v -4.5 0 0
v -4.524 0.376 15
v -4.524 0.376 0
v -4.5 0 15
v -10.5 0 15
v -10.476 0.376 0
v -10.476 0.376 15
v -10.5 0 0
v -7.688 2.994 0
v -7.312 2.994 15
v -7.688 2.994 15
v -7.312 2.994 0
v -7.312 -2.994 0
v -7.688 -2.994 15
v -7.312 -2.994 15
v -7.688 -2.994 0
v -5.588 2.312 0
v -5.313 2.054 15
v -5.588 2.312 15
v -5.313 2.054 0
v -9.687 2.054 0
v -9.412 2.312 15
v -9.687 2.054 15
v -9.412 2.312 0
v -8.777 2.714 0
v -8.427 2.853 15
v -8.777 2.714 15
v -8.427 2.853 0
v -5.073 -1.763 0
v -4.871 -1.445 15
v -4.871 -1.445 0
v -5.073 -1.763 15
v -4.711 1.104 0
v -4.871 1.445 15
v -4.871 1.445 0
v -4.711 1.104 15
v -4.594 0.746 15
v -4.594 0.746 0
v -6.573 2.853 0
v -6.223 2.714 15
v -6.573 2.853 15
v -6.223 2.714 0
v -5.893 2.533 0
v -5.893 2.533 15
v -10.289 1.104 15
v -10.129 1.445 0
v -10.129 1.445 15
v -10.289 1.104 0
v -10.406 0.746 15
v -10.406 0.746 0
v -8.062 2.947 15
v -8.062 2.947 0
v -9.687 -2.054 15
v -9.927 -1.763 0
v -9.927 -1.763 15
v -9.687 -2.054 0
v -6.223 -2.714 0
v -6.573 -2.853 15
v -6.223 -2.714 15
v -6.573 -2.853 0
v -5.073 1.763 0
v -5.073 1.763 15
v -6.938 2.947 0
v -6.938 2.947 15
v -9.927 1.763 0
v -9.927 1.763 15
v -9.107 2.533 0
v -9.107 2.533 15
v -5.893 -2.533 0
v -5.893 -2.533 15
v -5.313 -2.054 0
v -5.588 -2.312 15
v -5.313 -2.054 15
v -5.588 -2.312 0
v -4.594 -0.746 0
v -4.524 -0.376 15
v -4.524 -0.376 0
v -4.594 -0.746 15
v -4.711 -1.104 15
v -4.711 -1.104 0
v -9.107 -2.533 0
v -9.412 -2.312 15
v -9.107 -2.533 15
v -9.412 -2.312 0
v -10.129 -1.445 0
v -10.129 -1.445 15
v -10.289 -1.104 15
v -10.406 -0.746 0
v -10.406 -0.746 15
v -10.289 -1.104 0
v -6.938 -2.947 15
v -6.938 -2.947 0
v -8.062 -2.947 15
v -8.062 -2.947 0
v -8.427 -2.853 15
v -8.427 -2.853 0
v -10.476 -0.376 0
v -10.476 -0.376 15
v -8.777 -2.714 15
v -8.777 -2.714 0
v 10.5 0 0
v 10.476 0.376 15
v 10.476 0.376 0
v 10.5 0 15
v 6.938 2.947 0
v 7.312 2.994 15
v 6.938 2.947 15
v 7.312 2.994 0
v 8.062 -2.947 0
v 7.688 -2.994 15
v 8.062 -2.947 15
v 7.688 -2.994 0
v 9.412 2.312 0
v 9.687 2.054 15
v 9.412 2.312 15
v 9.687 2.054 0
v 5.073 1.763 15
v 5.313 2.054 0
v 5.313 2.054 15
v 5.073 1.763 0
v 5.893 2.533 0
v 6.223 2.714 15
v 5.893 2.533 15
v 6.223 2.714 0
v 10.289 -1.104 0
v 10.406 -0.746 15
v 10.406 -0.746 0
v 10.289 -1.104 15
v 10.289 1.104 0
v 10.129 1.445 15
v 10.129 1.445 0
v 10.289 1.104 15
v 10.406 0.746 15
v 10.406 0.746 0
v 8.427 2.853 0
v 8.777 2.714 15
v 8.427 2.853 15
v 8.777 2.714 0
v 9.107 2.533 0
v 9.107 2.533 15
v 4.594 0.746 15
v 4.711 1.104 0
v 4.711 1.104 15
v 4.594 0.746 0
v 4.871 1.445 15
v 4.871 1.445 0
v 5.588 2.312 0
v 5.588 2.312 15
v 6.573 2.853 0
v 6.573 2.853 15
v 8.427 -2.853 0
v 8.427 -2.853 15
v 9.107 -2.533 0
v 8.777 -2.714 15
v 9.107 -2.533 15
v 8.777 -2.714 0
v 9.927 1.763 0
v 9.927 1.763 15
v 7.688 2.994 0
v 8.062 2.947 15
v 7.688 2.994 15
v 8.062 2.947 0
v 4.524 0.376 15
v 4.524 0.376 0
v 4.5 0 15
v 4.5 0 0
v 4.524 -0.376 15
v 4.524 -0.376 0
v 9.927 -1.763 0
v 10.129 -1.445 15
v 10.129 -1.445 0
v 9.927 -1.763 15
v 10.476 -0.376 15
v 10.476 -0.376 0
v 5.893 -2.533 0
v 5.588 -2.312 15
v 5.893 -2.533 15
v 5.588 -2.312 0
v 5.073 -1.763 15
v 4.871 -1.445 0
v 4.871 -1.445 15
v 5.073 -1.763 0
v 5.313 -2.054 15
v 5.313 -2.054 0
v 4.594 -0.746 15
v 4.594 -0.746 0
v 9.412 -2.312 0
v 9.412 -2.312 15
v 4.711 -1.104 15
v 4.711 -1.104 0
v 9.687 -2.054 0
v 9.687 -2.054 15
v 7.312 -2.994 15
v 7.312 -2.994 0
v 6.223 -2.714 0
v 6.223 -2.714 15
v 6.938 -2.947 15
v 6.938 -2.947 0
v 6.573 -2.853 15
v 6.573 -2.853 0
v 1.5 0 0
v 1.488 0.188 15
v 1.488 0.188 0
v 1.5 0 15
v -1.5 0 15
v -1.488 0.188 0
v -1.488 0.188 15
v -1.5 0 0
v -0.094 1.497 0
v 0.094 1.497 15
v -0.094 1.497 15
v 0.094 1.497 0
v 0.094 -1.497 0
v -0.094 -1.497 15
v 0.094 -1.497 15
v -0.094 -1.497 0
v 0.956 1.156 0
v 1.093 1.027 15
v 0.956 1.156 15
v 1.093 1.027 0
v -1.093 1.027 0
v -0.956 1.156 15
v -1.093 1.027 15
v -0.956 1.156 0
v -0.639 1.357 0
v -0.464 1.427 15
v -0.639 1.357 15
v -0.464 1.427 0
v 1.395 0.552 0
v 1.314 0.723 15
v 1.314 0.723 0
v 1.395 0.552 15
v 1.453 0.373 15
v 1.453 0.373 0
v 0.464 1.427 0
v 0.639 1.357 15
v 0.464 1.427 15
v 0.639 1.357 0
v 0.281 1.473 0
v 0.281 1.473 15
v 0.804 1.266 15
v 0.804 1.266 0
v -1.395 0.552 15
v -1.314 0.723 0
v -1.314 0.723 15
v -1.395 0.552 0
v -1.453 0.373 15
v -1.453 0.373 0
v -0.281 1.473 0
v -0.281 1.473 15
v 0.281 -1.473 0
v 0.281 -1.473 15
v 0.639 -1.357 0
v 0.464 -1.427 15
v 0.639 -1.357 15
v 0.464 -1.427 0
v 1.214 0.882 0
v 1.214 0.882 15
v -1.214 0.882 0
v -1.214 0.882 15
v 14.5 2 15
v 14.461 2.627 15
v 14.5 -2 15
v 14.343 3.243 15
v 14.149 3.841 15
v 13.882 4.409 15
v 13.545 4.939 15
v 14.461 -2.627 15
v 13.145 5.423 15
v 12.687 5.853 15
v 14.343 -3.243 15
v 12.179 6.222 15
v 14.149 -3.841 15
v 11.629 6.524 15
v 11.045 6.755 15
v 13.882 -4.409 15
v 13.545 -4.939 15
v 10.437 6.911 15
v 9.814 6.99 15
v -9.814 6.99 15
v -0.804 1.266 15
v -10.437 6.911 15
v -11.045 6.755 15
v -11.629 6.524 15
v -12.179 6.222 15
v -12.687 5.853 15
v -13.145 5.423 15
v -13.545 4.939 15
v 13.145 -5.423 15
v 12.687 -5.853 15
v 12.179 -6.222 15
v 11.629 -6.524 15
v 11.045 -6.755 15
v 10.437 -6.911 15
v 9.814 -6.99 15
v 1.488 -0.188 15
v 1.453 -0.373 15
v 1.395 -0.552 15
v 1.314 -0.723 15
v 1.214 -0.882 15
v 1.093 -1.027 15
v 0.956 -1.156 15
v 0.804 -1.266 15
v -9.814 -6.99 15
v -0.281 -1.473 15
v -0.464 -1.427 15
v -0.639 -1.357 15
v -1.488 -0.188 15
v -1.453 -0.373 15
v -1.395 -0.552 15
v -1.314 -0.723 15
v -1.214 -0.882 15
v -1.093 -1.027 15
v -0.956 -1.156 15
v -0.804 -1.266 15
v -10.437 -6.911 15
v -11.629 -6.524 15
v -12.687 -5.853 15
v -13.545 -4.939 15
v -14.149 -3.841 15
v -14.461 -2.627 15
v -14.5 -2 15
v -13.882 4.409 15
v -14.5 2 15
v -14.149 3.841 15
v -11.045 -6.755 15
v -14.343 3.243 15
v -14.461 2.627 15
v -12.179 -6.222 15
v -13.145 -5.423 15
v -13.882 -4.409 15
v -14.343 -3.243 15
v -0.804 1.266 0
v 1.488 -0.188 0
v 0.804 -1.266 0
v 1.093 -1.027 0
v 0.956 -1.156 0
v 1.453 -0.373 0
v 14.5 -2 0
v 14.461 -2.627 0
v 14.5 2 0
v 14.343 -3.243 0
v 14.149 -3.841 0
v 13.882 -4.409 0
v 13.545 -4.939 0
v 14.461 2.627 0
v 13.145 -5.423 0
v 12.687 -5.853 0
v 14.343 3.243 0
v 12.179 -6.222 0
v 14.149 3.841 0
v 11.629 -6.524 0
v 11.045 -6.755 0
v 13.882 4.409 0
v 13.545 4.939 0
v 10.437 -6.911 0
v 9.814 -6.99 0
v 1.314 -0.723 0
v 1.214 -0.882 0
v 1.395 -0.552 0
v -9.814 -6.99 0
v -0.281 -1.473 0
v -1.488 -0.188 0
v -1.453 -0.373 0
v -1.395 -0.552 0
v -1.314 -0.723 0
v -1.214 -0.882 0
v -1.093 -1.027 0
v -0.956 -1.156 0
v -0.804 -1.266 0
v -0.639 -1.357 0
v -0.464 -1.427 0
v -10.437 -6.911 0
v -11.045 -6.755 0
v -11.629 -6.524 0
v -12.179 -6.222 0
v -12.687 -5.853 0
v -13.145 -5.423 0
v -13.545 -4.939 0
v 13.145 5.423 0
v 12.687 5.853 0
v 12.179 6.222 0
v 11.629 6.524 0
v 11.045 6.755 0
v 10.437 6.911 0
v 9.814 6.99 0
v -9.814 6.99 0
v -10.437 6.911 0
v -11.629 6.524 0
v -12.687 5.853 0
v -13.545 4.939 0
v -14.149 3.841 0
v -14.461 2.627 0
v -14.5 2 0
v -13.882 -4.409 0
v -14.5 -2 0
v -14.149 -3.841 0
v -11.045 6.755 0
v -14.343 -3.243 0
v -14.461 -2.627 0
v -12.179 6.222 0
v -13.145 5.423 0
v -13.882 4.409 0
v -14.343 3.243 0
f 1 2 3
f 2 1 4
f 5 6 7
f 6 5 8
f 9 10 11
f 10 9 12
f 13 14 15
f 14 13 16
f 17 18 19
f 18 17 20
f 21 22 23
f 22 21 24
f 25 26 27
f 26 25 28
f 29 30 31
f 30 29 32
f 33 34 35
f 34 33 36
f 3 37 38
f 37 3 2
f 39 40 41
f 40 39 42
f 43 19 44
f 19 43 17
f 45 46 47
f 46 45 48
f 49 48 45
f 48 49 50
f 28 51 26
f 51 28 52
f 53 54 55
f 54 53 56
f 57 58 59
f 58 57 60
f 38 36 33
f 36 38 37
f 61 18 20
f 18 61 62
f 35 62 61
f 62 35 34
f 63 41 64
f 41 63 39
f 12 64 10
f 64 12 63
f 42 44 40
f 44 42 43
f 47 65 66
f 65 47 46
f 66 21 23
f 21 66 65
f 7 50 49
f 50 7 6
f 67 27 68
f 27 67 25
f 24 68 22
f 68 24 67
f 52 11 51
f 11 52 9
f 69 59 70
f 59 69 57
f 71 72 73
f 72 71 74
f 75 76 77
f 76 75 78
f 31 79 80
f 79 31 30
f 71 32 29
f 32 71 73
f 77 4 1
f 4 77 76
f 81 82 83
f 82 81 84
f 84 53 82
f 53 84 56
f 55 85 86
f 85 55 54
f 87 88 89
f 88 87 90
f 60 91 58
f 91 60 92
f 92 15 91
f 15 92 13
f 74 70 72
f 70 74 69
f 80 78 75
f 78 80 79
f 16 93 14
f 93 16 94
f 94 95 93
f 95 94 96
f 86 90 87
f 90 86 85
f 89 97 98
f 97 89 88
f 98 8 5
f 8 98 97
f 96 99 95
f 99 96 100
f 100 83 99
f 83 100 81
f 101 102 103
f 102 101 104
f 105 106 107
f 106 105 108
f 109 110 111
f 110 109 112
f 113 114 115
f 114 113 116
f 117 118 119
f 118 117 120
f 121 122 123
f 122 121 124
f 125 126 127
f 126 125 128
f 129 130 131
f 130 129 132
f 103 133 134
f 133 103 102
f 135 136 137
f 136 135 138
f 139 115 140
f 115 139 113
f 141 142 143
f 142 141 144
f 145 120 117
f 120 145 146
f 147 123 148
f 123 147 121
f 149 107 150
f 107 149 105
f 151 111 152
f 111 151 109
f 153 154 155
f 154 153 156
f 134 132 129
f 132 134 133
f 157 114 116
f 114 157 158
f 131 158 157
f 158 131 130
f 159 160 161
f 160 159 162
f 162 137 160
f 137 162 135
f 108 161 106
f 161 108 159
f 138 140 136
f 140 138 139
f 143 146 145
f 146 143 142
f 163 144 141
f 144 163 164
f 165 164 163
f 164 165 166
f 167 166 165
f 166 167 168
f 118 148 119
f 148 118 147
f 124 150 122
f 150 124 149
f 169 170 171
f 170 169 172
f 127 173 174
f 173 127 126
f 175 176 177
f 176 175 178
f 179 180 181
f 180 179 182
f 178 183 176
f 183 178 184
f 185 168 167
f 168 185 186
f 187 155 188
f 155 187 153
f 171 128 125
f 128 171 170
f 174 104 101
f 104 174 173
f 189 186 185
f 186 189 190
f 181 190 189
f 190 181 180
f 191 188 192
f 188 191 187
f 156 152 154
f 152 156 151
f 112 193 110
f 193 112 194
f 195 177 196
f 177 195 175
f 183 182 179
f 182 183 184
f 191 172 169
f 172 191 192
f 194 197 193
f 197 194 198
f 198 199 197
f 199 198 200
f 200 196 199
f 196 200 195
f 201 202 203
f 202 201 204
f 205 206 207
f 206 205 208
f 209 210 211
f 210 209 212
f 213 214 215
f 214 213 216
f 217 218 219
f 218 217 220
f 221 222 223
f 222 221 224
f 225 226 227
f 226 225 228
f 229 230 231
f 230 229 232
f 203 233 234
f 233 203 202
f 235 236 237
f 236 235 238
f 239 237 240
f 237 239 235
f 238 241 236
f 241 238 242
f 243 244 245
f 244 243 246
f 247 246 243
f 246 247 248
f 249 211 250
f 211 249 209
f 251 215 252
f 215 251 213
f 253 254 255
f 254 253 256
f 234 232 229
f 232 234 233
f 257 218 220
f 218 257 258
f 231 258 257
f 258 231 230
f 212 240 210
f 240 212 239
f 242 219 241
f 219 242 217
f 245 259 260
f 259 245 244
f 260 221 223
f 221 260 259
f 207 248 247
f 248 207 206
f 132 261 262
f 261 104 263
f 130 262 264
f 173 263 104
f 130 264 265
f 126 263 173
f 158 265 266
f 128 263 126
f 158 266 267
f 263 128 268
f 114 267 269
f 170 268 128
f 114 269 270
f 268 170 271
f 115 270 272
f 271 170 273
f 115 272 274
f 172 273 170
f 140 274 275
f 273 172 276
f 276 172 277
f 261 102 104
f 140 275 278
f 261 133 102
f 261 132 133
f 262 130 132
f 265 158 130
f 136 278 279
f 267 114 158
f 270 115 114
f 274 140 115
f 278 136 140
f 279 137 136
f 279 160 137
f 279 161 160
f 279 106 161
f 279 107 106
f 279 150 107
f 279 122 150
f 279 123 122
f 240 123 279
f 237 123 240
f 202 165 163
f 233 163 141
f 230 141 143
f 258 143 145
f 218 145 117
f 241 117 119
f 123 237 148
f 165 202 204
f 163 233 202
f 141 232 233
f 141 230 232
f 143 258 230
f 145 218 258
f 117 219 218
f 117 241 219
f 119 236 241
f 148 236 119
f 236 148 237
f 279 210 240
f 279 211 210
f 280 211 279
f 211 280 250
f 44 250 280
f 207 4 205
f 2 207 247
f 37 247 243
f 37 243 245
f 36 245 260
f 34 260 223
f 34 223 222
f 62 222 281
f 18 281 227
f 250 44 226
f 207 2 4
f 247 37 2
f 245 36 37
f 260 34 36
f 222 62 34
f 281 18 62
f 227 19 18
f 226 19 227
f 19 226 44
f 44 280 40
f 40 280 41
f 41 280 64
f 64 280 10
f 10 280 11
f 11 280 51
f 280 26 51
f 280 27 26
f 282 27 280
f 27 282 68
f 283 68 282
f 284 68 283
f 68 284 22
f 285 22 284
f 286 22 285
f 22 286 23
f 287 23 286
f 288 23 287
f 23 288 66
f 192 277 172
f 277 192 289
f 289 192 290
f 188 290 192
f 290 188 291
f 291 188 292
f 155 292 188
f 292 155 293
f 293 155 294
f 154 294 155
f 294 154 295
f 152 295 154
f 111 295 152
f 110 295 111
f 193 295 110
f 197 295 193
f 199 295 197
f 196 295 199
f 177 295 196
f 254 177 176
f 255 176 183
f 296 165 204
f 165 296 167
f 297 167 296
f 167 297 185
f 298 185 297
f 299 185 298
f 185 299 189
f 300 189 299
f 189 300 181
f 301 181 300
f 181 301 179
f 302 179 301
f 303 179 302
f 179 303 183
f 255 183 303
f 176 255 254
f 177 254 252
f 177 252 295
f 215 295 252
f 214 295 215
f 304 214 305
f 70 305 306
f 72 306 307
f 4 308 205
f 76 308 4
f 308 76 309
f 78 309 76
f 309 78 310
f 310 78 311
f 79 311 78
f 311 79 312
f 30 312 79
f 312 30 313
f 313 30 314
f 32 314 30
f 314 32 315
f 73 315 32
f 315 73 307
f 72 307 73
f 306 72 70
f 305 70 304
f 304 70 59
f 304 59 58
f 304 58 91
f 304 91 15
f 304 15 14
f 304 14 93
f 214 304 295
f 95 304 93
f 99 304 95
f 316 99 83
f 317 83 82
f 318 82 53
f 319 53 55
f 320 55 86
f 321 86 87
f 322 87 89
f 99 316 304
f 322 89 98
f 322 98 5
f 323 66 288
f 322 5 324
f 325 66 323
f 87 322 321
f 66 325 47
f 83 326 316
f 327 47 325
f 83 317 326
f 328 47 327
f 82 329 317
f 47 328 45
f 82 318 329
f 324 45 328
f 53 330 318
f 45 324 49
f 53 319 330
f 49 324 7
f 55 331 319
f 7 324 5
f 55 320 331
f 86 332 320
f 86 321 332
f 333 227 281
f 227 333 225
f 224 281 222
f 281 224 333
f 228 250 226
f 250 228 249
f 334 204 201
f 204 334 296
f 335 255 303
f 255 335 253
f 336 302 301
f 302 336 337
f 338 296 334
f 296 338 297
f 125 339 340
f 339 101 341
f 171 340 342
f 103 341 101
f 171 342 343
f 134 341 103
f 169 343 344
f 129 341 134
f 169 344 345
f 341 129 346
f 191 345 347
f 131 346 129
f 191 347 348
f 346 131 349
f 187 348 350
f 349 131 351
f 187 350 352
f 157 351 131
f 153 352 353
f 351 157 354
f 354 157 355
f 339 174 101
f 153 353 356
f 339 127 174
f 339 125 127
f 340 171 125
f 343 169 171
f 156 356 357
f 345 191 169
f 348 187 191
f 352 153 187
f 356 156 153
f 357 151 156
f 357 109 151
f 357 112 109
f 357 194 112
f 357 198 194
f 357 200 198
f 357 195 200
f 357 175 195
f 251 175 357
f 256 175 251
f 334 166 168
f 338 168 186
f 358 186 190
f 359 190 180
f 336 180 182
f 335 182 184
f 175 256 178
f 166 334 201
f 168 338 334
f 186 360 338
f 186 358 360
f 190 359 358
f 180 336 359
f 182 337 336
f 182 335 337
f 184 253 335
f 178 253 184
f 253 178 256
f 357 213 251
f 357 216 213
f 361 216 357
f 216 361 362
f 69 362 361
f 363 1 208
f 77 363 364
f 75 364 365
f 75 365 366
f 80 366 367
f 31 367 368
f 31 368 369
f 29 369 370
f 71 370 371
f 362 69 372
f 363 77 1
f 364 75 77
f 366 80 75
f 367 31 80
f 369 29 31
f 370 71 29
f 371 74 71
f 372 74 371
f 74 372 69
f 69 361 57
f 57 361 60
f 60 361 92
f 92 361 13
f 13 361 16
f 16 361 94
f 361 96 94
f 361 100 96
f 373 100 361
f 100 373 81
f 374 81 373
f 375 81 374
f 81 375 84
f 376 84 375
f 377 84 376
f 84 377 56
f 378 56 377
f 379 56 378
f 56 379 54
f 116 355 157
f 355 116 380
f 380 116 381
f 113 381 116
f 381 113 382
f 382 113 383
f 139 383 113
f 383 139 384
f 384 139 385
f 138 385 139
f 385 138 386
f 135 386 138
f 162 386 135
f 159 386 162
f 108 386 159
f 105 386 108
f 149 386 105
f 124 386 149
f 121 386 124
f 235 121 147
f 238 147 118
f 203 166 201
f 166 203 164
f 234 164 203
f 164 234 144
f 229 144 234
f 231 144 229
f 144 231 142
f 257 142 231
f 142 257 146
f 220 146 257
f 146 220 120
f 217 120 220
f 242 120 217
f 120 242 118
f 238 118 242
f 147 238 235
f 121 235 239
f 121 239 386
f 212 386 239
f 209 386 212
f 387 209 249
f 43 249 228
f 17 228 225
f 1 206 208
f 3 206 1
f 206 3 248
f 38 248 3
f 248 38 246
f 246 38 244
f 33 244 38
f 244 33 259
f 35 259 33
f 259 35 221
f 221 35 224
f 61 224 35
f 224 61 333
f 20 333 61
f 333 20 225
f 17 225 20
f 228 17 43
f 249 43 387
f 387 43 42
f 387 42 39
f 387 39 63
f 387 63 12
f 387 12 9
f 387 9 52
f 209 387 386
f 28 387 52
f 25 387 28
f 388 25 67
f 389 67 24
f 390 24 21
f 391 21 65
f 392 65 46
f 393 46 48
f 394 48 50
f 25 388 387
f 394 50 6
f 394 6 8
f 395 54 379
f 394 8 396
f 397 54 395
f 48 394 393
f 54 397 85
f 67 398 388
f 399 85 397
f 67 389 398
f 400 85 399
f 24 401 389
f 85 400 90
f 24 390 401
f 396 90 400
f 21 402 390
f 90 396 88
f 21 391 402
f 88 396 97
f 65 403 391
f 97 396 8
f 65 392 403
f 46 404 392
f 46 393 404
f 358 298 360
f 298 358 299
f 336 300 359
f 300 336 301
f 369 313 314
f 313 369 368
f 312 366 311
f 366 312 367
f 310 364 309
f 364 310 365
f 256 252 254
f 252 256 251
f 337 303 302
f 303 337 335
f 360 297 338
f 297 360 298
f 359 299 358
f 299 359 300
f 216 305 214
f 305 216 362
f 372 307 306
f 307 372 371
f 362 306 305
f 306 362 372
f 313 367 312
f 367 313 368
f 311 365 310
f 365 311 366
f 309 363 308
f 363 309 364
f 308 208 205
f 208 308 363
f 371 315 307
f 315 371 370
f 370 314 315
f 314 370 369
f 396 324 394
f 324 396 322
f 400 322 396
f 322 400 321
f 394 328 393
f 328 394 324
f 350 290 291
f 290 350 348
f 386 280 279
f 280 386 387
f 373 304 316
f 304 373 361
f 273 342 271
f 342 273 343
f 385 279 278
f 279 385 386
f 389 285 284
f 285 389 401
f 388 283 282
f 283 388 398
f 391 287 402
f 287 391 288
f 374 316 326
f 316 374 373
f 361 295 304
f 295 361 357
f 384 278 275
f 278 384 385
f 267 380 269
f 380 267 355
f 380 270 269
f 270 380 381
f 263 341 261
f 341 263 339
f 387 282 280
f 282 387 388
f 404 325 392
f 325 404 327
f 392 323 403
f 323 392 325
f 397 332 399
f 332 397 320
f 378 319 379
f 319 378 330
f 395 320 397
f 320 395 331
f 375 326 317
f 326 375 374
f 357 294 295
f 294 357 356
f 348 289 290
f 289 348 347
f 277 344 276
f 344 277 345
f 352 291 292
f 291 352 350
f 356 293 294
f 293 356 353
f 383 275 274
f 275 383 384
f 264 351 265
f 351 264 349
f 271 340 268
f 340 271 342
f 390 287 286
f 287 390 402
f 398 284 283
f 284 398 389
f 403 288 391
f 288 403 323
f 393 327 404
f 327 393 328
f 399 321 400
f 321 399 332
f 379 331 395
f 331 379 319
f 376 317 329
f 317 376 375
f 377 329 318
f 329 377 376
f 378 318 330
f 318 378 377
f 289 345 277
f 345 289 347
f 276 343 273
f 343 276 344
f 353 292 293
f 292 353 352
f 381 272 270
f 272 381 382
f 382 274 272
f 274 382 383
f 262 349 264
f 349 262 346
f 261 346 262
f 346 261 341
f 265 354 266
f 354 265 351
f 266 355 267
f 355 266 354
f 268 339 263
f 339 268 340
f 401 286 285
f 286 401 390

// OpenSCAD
$fn = 50;


difference() {
	union() {
		hull() {
			translate(v = [-9.5000000000, 2.0000000000, 0]) {
				cylinder(h = 15, r = 5);
			}
			translate(v = [9.5000000000, 2.0000000000, 0]) {
				cylinder(h = 15, r = 5);
			}
			translate(v = [-9.5000000000, -2.0000000000, 0]) {
				cylinder(h = 15, r = 5);
			}
			translate(v = [9.5000000000, -2.0000000000, 0]) {
				cylinder(h = 15, r = 5);
			}
		}
	}
	union() {
		translate(v = [-7.5000000000, 0.0000000000, -100.0000000000]) {
			cylinder(h = 200, r = 3.0000000000);
		}
		translate(v = [7.5000000000, 0.0000000000, -100.0000000000]) {
			cylinder(h = 200, r = 3.0000000000);
		}
		translate(v = [-7.5000000000, 0.0000000000, 0]) {
			cylinder(h = 15, r = 1.5000000000);
		}
		cylinder(h = 15, r = 1.5000000000);
		translate(v = [7.5000000000, 0.0000000000, 0]) {
			cylinder(h = 15, r = 1.5000000000);
		}
		translate(v = [-7.5000000000, 0.0000000000, 0]) {
			cylinder(h = 15, r = 1.5000000000);
		}
		cylinder(h = 15, r = 1.5000000000);
		translate(v = [7.5000000000, 0.0000000000, 0]) {
			cylinder(h = 15, r = 1.5000000000);
		}
		translate(v = [-7.5000000000, 0.0000000000, 0]) {
			cylinder(h = 15, r = 1.5000000000);
		}
		cylinder(h = 15, r = 1.5000000000);
		translate(v = [7.5000000000, 0.0000000000, 0]) {
			cylinder(h = 15, r = 1.5000000000);
		}
	}
}
